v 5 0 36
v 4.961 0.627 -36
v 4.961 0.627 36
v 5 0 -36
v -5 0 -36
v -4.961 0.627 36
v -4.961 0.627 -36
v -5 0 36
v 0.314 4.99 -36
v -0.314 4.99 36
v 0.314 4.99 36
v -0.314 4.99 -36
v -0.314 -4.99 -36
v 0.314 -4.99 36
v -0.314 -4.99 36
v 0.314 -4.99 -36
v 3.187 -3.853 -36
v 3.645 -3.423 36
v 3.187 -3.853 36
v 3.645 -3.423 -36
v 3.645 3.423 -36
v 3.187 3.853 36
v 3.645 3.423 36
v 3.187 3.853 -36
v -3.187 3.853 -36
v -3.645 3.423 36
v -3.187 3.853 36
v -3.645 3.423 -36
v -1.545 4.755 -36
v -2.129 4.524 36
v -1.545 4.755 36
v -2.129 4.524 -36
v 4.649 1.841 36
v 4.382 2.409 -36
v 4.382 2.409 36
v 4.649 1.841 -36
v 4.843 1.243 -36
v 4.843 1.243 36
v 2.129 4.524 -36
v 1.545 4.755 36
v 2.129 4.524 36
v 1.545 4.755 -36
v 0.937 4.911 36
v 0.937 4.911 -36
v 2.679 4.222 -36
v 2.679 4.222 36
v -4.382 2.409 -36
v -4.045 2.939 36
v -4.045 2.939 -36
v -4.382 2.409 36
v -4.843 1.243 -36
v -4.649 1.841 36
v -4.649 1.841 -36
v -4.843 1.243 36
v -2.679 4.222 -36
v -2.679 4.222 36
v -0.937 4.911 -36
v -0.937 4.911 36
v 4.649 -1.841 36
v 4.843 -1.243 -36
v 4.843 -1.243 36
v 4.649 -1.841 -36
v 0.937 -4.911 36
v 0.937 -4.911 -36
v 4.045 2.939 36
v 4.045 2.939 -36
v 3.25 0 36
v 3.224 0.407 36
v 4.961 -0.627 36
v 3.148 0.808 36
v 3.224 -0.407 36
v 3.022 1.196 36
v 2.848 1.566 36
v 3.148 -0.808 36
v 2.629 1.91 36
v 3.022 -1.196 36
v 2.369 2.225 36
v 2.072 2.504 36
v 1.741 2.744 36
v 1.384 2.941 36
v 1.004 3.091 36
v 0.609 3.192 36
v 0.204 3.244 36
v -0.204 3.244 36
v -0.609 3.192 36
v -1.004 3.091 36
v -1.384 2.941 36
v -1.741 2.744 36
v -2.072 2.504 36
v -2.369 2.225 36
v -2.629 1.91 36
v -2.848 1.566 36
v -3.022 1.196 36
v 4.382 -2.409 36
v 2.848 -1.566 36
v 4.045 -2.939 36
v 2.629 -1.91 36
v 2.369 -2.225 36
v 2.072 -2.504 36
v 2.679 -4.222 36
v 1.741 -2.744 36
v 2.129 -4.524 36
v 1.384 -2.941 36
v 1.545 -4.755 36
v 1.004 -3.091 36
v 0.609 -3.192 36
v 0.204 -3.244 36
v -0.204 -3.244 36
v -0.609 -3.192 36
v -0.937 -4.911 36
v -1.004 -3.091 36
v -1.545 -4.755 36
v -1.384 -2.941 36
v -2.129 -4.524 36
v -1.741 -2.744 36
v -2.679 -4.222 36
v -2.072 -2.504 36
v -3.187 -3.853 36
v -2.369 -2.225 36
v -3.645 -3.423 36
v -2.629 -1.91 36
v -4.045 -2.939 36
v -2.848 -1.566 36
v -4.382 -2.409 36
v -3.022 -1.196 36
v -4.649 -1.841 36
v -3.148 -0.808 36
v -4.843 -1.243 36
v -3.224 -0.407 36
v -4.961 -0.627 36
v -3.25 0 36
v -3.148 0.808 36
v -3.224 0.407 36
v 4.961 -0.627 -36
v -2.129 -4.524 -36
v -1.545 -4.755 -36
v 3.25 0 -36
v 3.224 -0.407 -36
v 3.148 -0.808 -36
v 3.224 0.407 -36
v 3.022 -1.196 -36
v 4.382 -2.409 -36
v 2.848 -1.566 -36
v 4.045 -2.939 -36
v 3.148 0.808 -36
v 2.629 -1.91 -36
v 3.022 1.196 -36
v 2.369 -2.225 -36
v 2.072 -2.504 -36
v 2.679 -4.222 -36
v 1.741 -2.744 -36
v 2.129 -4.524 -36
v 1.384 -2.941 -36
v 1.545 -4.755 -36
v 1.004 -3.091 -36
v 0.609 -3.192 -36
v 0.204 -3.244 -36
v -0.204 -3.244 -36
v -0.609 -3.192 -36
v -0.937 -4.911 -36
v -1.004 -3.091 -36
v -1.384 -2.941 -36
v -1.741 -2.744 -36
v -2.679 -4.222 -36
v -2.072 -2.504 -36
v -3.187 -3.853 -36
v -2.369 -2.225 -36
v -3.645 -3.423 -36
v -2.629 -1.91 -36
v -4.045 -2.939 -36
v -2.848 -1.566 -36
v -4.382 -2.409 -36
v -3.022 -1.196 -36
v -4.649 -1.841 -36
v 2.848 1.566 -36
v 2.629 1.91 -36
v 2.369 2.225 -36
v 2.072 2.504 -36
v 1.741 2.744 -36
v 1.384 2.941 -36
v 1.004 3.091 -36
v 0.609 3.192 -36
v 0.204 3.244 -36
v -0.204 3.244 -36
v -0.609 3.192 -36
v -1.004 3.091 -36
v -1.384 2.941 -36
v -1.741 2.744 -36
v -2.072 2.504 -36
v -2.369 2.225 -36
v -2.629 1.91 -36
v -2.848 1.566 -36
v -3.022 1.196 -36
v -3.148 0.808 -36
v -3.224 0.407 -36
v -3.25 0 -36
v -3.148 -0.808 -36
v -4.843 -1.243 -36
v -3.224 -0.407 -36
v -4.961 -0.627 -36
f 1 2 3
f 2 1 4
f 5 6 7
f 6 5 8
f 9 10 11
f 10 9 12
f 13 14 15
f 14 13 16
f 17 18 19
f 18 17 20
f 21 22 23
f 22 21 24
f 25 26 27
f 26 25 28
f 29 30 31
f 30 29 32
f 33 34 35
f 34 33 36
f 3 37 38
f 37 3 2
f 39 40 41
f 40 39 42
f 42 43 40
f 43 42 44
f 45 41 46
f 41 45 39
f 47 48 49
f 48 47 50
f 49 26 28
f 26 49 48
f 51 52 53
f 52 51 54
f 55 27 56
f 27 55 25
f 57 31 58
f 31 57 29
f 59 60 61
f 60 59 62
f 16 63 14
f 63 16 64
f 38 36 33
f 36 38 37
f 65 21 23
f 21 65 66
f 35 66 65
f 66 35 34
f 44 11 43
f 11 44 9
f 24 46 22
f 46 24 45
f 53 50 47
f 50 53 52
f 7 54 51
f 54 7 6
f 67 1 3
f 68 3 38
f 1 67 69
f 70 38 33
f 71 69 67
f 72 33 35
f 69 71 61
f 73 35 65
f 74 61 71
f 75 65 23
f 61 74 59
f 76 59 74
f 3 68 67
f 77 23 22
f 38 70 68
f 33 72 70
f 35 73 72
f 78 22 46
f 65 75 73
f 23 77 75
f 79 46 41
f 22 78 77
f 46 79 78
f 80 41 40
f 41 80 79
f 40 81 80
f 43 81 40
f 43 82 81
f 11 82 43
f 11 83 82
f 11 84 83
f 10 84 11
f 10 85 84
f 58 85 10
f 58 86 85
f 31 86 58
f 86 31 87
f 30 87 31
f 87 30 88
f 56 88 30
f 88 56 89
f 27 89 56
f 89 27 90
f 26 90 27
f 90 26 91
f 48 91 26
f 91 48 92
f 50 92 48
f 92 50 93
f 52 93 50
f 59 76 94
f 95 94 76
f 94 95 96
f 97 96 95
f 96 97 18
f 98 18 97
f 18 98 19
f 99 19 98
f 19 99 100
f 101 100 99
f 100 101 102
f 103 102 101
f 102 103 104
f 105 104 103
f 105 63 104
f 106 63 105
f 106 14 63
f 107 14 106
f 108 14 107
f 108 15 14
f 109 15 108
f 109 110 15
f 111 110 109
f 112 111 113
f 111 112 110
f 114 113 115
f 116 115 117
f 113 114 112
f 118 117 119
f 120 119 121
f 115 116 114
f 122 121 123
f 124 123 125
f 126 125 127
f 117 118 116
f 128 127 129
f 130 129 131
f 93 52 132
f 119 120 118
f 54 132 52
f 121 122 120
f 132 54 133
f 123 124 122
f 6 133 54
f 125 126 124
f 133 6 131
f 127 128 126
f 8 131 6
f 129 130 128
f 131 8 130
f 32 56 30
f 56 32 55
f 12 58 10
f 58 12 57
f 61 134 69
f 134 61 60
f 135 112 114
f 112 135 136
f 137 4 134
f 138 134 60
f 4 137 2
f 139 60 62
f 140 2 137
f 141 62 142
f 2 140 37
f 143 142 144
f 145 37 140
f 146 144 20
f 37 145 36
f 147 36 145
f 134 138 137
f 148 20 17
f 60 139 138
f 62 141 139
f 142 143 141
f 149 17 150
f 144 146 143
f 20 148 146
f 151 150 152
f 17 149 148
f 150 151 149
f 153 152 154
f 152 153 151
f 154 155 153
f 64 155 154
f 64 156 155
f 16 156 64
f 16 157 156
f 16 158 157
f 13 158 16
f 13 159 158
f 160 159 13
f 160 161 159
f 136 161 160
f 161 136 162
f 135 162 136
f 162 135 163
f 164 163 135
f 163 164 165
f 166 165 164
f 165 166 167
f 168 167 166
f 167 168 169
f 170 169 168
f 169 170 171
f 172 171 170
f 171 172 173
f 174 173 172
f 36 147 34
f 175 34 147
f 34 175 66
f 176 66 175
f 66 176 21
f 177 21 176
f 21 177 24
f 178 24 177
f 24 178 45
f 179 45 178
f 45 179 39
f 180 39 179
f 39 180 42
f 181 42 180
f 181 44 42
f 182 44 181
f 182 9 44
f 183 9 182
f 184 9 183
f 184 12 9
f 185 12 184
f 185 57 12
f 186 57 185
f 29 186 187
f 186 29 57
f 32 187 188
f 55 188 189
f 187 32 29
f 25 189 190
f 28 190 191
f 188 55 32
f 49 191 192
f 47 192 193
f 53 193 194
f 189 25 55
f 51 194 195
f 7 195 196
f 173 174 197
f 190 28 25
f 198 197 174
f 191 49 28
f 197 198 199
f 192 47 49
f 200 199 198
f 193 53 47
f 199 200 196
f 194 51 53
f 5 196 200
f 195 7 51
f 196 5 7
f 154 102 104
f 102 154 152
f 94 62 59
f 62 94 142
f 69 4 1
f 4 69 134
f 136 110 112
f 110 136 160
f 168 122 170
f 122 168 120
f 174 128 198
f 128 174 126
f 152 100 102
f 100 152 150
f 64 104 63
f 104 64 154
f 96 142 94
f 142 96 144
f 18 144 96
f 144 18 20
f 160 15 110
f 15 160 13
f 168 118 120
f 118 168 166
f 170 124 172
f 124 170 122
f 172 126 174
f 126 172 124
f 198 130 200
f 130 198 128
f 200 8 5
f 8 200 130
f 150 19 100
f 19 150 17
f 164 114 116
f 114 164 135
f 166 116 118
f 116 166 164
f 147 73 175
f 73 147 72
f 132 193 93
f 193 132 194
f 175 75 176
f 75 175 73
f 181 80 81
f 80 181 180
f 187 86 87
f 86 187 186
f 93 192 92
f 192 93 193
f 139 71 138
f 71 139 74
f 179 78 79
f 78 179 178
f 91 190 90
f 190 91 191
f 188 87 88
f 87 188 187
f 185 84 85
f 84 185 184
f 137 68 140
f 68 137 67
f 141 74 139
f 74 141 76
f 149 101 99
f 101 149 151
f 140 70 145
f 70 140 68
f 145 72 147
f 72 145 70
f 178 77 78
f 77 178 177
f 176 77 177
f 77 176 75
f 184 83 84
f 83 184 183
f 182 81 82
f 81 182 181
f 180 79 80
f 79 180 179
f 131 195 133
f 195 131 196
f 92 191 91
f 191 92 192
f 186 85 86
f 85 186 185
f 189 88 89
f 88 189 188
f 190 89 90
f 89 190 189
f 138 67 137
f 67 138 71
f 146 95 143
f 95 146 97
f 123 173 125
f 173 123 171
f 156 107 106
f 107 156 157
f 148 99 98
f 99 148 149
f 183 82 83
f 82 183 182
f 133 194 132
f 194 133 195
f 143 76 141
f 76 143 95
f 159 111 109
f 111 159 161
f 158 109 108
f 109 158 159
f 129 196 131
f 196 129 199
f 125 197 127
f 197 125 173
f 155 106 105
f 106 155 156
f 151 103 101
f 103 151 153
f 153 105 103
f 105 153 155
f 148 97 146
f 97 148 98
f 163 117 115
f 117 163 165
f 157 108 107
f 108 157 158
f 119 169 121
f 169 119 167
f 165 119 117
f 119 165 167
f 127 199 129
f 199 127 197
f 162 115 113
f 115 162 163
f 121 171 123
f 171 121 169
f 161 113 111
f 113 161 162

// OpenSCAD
$fn = 50;


difference() {
	union() {
		translate(v = [0, 0, -36.0000000000]) {
			cylinder(h = 72, r = 5.0000000000);
		}
	}
	union() {
		translate(v = [0, 0, -100.0000000000]) {
			cylinder(h = 200, r = 3.2500000000);
		}
	}
}
